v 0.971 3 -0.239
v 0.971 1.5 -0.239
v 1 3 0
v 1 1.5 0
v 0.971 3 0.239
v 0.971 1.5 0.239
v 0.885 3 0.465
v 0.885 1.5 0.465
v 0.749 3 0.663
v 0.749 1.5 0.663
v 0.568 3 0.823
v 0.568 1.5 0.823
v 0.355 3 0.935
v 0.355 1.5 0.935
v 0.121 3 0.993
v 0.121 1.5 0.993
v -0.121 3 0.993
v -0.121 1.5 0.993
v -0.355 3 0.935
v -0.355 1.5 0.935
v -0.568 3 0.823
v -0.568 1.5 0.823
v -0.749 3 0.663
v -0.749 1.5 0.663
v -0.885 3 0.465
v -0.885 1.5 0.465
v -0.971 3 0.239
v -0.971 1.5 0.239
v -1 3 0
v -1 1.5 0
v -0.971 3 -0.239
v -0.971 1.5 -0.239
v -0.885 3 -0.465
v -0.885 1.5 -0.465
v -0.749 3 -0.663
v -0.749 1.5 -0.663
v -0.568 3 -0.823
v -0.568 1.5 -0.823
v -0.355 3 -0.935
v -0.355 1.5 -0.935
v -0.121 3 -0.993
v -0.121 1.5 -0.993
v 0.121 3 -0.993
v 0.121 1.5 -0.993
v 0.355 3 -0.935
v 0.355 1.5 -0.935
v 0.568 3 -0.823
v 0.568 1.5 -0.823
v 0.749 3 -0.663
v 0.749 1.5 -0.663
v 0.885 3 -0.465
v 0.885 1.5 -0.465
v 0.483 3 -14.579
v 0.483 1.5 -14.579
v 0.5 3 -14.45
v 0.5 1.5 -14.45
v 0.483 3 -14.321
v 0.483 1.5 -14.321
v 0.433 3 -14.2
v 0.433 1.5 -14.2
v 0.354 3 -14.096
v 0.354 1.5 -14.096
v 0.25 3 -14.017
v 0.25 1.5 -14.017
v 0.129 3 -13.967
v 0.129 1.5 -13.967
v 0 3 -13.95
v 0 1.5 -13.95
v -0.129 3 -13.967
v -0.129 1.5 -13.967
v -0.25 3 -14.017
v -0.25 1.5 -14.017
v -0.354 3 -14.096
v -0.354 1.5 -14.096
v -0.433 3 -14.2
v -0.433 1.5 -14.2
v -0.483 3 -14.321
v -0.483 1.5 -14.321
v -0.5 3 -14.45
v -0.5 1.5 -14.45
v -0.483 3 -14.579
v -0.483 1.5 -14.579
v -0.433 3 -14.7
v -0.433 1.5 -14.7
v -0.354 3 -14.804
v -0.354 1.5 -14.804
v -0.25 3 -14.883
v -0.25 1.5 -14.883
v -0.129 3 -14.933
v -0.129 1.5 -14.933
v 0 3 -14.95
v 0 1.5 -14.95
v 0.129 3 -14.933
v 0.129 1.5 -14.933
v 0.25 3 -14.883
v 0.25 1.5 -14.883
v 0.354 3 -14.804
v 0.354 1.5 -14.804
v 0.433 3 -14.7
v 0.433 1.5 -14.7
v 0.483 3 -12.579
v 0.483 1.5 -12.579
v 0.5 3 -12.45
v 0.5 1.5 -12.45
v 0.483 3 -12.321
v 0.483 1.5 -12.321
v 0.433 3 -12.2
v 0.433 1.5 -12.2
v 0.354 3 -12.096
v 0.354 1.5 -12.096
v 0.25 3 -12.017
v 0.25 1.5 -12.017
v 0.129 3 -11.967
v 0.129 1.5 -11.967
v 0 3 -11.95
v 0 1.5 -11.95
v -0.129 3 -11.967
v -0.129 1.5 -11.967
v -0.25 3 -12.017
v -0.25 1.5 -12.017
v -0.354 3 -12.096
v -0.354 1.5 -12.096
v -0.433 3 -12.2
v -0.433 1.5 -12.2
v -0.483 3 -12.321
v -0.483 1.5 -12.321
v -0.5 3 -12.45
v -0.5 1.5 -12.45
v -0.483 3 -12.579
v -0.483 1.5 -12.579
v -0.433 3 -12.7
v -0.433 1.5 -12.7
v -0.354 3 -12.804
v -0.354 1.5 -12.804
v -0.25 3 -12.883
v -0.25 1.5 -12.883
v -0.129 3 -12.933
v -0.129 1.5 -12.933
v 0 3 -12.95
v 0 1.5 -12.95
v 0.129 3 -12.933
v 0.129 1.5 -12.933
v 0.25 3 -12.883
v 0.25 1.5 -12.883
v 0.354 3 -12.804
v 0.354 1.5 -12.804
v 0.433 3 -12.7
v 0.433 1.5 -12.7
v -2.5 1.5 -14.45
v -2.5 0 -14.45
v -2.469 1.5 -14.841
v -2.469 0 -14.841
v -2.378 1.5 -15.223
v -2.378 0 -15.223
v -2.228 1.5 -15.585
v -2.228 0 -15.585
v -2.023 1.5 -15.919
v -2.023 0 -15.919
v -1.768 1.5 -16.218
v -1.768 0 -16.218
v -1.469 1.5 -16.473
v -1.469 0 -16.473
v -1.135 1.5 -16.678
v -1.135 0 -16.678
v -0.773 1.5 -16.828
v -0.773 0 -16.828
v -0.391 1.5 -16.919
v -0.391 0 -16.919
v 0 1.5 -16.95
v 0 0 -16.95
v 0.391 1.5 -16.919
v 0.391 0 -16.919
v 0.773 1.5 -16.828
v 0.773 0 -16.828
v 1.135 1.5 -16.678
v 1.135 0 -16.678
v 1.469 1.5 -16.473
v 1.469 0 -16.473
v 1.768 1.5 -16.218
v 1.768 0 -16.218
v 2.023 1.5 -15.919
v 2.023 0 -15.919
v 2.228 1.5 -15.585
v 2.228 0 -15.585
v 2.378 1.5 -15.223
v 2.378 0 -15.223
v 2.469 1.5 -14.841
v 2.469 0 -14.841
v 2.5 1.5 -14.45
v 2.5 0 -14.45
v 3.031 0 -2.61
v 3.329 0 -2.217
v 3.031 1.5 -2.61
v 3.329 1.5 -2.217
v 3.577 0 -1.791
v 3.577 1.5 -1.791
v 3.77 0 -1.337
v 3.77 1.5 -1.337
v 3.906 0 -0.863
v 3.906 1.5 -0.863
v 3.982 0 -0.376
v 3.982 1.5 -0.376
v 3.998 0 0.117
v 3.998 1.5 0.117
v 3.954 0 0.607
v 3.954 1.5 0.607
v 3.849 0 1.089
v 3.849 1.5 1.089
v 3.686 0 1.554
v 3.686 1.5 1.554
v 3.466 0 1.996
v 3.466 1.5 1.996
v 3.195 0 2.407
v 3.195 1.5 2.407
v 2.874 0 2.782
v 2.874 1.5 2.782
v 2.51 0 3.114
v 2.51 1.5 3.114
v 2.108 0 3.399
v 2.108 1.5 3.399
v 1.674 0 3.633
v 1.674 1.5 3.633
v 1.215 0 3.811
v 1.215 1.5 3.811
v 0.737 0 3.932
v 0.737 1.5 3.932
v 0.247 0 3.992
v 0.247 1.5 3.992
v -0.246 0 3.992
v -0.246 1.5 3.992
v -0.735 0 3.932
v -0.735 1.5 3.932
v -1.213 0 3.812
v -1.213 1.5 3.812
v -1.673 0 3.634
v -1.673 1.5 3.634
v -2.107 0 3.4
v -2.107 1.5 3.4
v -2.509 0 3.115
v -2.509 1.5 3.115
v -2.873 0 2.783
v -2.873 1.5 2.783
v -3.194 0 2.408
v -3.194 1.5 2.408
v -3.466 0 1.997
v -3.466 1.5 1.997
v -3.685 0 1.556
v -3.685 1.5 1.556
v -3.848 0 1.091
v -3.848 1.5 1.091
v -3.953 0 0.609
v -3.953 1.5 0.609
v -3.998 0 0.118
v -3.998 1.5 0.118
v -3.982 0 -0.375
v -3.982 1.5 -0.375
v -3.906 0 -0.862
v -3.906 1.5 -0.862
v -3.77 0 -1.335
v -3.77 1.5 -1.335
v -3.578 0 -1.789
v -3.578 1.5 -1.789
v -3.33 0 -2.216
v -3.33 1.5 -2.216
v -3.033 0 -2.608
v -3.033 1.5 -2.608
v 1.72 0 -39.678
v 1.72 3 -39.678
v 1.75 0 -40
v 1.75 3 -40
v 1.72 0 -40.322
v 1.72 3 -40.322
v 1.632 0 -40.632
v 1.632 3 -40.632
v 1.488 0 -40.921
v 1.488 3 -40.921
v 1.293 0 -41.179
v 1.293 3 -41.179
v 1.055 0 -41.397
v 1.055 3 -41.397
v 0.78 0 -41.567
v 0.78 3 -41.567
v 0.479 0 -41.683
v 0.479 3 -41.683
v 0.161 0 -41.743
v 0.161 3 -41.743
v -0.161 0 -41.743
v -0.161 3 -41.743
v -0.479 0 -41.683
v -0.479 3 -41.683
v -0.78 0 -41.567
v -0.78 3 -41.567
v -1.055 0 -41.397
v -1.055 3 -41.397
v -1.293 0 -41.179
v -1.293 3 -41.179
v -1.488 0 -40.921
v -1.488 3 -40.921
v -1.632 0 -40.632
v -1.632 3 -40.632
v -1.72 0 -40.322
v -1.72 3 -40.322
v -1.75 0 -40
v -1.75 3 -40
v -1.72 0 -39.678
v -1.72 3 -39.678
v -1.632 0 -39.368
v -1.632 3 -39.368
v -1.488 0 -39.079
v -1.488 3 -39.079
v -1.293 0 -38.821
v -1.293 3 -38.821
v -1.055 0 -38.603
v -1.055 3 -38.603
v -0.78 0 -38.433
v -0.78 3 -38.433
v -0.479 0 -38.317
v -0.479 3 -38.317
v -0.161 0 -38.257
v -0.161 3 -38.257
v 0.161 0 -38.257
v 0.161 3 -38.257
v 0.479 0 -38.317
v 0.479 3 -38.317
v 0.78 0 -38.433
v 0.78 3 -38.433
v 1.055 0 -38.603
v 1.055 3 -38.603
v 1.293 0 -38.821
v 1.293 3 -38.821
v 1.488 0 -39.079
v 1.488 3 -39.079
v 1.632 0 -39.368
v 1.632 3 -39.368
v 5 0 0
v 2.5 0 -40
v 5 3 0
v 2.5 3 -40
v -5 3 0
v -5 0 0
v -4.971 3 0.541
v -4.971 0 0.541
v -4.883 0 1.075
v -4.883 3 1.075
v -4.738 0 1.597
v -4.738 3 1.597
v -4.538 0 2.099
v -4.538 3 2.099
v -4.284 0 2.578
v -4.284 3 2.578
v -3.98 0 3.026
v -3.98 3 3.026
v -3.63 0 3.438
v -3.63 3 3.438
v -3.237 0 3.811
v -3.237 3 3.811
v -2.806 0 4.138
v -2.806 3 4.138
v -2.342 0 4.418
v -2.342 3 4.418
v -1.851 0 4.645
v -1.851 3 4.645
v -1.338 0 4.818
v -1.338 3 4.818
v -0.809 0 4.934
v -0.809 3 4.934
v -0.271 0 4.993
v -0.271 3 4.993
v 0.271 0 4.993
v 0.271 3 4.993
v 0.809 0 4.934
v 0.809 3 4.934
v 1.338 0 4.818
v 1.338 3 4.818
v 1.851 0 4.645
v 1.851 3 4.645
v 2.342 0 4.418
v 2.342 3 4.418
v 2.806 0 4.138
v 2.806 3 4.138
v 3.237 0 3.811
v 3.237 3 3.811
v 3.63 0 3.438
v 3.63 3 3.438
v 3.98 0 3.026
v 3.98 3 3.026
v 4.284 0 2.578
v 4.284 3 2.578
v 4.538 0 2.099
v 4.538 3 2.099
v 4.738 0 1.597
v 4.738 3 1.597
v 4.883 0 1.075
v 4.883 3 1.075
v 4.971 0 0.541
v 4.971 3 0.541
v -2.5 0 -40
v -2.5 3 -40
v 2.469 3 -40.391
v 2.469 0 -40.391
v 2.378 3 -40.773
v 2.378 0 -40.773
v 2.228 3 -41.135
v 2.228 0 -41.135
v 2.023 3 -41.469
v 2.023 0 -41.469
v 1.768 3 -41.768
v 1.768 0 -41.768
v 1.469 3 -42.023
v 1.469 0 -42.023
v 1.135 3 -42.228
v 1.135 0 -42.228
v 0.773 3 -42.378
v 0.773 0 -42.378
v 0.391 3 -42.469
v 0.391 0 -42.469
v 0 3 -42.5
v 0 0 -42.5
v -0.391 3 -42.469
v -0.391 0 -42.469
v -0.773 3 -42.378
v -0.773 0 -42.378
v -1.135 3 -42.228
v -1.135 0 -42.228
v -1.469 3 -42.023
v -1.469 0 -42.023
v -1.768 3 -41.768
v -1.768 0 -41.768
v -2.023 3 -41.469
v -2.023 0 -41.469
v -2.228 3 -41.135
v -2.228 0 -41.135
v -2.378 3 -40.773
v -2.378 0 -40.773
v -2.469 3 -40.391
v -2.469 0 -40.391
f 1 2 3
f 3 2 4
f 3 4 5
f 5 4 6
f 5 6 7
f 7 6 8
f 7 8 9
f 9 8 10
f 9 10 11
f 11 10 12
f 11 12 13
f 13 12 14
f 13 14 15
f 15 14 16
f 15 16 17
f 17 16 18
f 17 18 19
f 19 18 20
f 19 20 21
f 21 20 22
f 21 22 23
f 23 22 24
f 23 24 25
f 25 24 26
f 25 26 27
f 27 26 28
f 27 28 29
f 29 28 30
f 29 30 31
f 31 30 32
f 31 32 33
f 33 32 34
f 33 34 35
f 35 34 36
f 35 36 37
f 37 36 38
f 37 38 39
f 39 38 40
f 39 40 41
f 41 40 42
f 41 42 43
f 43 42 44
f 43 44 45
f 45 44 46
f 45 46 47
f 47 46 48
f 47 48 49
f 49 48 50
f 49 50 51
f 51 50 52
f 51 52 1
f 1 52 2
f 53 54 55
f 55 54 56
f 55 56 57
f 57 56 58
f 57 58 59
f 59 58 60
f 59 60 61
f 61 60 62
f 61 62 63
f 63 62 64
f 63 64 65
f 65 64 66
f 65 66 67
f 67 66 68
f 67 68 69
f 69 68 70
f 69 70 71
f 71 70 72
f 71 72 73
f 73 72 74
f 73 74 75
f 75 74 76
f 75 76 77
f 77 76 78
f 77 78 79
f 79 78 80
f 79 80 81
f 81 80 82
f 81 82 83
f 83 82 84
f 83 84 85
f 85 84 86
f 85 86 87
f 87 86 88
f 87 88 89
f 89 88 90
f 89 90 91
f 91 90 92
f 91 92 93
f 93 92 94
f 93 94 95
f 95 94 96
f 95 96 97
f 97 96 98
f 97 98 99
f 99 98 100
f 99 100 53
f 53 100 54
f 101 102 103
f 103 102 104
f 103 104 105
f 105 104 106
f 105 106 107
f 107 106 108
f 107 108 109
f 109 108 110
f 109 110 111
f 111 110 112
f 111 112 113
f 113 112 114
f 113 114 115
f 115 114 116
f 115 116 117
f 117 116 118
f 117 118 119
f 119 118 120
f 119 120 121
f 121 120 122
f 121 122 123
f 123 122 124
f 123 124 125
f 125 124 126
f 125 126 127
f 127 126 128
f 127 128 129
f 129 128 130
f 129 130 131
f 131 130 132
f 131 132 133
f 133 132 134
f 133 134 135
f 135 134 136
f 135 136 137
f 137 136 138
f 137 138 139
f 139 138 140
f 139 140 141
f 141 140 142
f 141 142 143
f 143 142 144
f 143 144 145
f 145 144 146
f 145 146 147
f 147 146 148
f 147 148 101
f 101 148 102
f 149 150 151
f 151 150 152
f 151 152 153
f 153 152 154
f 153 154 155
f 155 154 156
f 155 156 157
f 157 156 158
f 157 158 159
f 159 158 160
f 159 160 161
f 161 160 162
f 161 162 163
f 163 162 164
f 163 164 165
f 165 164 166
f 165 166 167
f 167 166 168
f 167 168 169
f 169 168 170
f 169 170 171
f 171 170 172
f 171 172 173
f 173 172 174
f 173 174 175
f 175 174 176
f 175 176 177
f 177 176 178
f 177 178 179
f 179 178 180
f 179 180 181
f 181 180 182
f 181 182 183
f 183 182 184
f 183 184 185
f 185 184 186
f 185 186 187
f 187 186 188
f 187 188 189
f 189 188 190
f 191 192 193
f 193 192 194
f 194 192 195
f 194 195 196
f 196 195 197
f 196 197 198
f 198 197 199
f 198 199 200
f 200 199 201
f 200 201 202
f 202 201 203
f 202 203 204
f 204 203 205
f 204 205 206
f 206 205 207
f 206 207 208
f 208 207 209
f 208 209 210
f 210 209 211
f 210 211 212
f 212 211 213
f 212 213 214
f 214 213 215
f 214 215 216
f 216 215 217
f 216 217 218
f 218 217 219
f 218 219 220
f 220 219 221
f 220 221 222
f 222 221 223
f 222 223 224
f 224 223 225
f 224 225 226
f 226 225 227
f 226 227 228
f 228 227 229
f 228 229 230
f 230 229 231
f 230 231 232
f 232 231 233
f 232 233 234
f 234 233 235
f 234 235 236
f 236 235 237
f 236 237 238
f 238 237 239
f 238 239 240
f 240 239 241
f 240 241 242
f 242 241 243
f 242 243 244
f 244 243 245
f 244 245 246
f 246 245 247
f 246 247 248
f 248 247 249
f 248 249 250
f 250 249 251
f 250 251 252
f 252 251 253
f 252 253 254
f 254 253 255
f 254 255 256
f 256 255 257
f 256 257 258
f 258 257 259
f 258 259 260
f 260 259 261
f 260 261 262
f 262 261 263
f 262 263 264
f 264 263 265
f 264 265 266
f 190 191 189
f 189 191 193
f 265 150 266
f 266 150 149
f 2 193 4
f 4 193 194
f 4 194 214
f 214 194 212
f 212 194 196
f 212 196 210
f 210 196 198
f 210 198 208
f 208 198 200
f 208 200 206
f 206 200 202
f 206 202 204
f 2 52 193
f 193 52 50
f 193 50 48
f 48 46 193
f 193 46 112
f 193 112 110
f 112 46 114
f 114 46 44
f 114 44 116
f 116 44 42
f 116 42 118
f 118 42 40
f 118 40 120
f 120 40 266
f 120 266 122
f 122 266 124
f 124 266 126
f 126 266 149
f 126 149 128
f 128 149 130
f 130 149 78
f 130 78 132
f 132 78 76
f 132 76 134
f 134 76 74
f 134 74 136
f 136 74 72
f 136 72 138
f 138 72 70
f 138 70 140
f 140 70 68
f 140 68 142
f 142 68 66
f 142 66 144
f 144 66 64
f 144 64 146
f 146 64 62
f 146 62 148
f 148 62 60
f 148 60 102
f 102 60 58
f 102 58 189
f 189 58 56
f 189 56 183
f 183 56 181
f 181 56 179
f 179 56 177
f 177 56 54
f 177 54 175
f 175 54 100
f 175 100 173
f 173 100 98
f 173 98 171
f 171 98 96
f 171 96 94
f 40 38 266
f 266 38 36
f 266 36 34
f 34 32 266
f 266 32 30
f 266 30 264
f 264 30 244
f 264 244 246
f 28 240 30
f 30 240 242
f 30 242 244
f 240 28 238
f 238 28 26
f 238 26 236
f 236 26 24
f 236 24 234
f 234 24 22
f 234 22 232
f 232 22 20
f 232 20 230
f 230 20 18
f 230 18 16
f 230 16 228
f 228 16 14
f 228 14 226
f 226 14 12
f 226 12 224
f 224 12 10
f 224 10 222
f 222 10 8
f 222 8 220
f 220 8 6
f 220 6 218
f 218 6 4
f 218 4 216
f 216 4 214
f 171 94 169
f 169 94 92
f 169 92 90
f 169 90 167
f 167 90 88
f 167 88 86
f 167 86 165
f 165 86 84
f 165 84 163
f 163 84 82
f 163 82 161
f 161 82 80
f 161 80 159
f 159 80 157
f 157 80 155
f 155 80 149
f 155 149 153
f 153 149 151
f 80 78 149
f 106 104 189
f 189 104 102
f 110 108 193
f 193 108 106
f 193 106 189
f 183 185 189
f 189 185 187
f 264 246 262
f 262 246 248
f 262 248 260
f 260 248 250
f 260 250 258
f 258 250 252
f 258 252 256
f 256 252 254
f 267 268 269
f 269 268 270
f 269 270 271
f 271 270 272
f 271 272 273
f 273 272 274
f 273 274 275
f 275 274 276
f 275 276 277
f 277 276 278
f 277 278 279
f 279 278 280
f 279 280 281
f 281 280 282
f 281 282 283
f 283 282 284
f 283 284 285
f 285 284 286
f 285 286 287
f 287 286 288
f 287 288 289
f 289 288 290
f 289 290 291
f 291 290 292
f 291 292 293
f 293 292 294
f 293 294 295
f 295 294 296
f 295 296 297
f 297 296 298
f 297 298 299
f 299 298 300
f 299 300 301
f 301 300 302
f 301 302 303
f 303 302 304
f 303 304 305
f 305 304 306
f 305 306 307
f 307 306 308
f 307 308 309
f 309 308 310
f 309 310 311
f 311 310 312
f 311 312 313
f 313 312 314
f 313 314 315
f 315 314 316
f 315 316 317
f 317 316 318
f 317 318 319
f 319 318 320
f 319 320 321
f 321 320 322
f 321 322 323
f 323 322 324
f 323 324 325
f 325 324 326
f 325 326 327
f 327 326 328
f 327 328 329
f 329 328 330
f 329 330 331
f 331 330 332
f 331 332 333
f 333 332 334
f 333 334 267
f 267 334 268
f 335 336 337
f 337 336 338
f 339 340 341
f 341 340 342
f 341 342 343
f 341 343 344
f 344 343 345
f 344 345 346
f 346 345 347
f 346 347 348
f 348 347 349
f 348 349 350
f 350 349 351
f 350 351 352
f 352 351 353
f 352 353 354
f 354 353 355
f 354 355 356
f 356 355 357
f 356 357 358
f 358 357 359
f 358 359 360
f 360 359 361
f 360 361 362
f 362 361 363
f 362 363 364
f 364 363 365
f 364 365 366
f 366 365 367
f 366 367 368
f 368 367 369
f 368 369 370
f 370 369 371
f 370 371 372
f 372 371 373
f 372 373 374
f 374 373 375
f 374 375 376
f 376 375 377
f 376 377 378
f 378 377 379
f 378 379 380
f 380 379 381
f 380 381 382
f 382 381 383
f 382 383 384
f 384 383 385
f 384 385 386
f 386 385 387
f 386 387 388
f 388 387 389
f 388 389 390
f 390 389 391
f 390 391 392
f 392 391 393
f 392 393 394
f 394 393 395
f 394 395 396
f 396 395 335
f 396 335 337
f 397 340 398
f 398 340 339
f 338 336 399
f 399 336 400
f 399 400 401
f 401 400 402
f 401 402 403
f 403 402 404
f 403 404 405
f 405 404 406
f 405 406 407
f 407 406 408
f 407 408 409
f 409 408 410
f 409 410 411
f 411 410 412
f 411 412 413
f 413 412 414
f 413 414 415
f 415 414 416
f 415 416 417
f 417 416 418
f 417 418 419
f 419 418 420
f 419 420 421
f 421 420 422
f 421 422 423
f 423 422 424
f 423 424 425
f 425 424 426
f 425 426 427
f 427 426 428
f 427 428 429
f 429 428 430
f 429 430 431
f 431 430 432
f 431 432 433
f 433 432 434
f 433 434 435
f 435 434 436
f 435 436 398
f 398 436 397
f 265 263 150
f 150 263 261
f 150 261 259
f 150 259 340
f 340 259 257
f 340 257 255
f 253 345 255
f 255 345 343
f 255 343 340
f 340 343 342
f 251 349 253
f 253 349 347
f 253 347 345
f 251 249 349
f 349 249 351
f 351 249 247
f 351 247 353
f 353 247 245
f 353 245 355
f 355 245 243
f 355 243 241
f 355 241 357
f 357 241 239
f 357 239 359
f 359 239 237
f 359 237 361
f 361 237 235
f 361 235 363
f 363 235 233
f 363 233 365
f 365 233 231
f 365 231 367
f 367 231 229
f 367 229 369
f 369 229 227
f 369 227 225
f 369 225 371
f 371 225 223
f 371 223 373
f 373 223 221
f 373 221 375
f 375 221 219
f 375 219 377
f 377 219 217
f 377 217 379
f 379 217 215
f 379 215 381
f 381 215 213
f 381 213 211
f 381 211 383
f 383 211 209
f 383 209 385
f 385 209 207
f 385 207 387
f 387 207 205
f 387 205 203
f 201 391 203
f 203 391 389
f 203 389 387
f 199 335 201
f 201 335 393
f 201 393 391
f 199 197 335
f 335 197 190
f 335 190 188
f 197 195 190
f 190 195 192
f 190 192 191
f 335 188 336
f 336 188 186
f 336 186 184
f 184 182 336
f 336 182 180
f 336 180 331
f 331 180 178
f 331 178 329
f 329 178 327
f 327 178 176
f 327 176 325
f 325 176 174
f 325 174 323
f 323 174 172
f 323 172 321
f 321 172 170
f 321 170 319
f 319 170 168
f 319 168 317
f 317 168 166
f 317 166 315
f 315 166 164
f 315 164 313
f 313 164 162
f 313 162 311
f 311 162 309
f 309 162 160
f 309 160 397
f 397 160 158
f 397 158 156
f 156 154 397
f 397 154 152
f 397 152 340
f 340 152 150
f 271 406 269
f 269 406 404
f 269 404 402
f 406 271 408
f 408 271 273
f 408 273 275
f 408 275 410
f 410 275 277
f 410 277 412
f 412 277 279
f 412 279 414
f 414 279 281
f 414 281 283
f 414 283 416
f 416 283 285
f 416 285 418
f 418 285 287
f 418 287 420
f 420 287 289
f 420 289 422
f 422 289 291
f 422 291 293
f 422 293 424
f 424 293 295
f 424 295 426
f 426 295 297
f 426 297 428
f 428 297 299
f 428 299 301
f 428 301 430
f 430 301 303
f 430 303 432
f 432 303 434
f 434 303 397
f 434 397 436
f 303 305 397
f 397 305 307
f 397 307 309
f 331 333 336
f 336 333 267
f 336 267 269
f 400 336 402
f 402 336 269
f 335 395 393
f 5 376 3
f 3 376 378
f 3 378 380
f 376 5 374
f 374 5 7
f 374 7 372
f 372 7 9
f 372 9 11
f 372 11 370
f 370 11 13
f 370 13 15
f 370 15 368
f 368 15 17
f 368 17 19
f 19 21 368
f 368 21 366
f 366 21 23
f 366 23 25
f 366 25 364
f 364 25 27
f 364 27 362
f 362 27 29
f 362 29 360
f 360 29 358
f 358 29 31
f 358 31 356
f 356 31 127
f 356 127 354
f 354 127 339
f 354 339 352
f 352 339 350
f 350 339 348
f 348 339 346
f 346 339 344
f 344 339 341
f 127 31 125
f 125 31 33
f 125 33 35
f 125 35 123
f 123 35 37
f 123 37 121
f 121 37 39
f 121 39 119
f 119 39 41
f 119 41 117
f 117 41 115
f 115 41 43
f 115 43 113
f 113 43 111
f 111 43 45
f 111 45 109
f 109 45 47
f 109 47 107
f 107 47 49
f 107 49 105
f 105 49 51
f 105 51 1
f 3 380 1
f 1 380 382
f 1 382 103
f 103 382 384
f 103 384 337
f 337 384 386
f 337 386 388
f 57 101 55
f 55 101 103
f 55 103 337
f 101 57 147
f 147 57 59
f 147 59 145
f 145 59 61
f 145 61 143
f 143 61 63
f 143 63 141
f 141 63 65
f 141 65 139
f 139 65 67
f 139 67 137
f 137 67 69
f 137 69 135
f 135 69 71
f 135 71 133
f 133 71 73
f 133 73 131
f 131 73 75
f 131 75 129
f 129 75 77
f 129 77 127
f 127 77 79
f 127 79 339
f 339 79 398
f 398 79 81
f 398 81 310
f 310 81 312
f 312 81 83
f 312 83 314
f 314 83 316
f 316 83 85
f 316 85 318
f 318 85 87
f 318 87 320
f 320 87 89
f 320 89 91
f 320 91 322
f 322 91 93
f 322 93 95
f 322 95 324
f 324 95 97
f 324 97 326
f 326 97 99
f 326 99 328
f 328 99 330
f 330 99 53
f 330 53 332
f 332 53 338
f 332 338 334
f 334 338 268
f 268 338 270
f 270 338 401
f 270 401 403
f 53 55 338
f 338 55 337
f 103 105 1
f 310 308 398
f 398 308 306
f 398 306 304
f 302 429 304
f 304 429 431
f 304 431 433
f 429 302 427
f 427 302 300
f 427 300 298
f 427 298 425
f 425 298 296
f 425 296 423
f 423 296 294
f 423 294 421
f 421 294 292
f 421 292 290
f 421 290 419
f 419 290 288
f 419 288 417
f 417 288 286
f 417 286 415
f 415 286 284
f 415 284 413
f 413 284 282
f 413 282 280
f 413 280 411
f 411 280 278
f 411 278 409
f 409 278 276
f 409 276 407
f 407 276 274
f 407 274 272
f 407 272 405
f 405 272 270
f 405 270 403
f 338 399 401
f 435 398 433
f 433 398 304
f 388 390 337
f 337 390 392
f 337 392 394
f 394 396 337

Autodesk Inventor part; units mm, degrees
ref_plane "YZ Plane" through (0, 0, 0) normal (1, 0, 0) x (0, 1, 0)
ref_plane "XZ Plane" through (0, 0, 0) normal (0, 1, 0) x (-1, 0, 0)
ref_plane "XY Plane" through (0, 0, 0) normal (0, 0, 1) x (1, 0, 0)
sketch "Sketch1" plane through (0, 0, 0) normal (0, 1, 0) x (-1, 0, 0)
  circle A0 centre (0, 0) radius 5
  line L0 (0, 0) -> (0, -40)
  circle A1 centre (0, -40) radius 1.75
  circle A2 centre (0, -40) radius 2.5
  line L1 (0, -40) -> (2.5, -40)
  line L2 (0, 0) -> (5, 0)
  line L3 (5, 0) -> (2.5, -40)
  line L4 (0, 0) -> (-5, 0)
  line L5 (0, -40) -> (-2.5, -40)
  line L6 (-5, 0) -> (-2.5, -40)
  dimension "d0" = 10
  dimension "d1" = 40
  dimension "d2" = 3.5
  dimension "d3" = 5
extrude "Extrusion1" add sketch "Sketch1" along normal blind 3 contours L2 L4 A0 | L3 A0 L0 L2 | L4 L0 A0 L6 | L3 A2 L0 A0 | A0 L0 A2 L6 | L1 A1 L0 A2 | A2 L5 A1 L1 | A2 L0 A1 L5 | L1 L0 A1 | A1 L5 L1 | A1 L0 L5
sketch "Sketch2" plane through (0, 3, 0) normal (0, 1, 0) x (1, 0, 0)
  arc A0 (2.5, 40) -> (-2.5, 40) centre (0, 40) ccw projected
  circle A1 centre (0, 40) radius 1.75
  point P0 (0, 0)
  dimension "d6" = 3.5
extrude "Extrusion2" cut sketch "Sketch2" against normal blind 5
sketch "Sketch4" plane through (0, 0, 0) normal (0, -1, 0) x (1, 0, 0)
  circle A0 centre (0, 0) radius 4
  line L0 (0, 0) -> (0, -14.45)
  circle A1 centre (0, -14.45) radius 2.5
  line L1 (0, 0) -> (-4, 0)
  line L2 (0, -14.45) -> (-2.5, -14.45)
  line L3 (0, -14.45) -> (2.5, -14.45)
  line L4 (0, 0) -> (4, 0)
  line L5 (2.5, -14.45) -> (13.578, -14.45) construction
  line L6 (2.5, -14.45) -> (3.0315, -2.6097)
  line L7 (2.5, -14.45) -> (14.3523, -14.45) construction
  line L8 (-2.5, -14.45) -> (-3.0325, -2.6084)
  line L9 (-2.5, -14.45) -> (9.3536, -14.45) construction
  dimension "d12" = 8
  dimension "d13" = 14.45
  dimension "d14" = 5
  dimension "d16" = 87.43
  dimension "d17" = 92.575
extrude "Extrusion4" cut sketch "Sketch4" against normal blind 1.5
sketch "Sketch5" plane through (0, 1.5, 0) normal (0, -1, 0) x (1, 0, 0)
  line L0 (0, 0) -> (0, -14.45)
  circle A0 centre (0, -14.45) radius 0.5
  line L1 (0, -14.45) -> (0, -12.45)
  circle A1 centre (0, -12.45) radius 0.5
  dimension "d20" = 14.45
  dimension "d21" = 1
  dimension "d24" = 2
  dimension "d25" = 1
extrude "Extrusion6" cut sketch "Sketch5" against normal blind 5
sketch "Sketch6" plane through (0, 1.5, 0) normal (0, -1, 0) x (1, 0, 0)
  arc A0 (3.0315, -2.6097) -> (-3.0325, -2.6084) centre (0, 0) ccw projected
  circle A1 centre (0, 0) radius 1
  point P0 (0, 0)
  dimension "d28" = 2
extrude "Extrusion7" cut sketch "Sketch6" against normal blind 2
properties part number "Servo_Arm"
